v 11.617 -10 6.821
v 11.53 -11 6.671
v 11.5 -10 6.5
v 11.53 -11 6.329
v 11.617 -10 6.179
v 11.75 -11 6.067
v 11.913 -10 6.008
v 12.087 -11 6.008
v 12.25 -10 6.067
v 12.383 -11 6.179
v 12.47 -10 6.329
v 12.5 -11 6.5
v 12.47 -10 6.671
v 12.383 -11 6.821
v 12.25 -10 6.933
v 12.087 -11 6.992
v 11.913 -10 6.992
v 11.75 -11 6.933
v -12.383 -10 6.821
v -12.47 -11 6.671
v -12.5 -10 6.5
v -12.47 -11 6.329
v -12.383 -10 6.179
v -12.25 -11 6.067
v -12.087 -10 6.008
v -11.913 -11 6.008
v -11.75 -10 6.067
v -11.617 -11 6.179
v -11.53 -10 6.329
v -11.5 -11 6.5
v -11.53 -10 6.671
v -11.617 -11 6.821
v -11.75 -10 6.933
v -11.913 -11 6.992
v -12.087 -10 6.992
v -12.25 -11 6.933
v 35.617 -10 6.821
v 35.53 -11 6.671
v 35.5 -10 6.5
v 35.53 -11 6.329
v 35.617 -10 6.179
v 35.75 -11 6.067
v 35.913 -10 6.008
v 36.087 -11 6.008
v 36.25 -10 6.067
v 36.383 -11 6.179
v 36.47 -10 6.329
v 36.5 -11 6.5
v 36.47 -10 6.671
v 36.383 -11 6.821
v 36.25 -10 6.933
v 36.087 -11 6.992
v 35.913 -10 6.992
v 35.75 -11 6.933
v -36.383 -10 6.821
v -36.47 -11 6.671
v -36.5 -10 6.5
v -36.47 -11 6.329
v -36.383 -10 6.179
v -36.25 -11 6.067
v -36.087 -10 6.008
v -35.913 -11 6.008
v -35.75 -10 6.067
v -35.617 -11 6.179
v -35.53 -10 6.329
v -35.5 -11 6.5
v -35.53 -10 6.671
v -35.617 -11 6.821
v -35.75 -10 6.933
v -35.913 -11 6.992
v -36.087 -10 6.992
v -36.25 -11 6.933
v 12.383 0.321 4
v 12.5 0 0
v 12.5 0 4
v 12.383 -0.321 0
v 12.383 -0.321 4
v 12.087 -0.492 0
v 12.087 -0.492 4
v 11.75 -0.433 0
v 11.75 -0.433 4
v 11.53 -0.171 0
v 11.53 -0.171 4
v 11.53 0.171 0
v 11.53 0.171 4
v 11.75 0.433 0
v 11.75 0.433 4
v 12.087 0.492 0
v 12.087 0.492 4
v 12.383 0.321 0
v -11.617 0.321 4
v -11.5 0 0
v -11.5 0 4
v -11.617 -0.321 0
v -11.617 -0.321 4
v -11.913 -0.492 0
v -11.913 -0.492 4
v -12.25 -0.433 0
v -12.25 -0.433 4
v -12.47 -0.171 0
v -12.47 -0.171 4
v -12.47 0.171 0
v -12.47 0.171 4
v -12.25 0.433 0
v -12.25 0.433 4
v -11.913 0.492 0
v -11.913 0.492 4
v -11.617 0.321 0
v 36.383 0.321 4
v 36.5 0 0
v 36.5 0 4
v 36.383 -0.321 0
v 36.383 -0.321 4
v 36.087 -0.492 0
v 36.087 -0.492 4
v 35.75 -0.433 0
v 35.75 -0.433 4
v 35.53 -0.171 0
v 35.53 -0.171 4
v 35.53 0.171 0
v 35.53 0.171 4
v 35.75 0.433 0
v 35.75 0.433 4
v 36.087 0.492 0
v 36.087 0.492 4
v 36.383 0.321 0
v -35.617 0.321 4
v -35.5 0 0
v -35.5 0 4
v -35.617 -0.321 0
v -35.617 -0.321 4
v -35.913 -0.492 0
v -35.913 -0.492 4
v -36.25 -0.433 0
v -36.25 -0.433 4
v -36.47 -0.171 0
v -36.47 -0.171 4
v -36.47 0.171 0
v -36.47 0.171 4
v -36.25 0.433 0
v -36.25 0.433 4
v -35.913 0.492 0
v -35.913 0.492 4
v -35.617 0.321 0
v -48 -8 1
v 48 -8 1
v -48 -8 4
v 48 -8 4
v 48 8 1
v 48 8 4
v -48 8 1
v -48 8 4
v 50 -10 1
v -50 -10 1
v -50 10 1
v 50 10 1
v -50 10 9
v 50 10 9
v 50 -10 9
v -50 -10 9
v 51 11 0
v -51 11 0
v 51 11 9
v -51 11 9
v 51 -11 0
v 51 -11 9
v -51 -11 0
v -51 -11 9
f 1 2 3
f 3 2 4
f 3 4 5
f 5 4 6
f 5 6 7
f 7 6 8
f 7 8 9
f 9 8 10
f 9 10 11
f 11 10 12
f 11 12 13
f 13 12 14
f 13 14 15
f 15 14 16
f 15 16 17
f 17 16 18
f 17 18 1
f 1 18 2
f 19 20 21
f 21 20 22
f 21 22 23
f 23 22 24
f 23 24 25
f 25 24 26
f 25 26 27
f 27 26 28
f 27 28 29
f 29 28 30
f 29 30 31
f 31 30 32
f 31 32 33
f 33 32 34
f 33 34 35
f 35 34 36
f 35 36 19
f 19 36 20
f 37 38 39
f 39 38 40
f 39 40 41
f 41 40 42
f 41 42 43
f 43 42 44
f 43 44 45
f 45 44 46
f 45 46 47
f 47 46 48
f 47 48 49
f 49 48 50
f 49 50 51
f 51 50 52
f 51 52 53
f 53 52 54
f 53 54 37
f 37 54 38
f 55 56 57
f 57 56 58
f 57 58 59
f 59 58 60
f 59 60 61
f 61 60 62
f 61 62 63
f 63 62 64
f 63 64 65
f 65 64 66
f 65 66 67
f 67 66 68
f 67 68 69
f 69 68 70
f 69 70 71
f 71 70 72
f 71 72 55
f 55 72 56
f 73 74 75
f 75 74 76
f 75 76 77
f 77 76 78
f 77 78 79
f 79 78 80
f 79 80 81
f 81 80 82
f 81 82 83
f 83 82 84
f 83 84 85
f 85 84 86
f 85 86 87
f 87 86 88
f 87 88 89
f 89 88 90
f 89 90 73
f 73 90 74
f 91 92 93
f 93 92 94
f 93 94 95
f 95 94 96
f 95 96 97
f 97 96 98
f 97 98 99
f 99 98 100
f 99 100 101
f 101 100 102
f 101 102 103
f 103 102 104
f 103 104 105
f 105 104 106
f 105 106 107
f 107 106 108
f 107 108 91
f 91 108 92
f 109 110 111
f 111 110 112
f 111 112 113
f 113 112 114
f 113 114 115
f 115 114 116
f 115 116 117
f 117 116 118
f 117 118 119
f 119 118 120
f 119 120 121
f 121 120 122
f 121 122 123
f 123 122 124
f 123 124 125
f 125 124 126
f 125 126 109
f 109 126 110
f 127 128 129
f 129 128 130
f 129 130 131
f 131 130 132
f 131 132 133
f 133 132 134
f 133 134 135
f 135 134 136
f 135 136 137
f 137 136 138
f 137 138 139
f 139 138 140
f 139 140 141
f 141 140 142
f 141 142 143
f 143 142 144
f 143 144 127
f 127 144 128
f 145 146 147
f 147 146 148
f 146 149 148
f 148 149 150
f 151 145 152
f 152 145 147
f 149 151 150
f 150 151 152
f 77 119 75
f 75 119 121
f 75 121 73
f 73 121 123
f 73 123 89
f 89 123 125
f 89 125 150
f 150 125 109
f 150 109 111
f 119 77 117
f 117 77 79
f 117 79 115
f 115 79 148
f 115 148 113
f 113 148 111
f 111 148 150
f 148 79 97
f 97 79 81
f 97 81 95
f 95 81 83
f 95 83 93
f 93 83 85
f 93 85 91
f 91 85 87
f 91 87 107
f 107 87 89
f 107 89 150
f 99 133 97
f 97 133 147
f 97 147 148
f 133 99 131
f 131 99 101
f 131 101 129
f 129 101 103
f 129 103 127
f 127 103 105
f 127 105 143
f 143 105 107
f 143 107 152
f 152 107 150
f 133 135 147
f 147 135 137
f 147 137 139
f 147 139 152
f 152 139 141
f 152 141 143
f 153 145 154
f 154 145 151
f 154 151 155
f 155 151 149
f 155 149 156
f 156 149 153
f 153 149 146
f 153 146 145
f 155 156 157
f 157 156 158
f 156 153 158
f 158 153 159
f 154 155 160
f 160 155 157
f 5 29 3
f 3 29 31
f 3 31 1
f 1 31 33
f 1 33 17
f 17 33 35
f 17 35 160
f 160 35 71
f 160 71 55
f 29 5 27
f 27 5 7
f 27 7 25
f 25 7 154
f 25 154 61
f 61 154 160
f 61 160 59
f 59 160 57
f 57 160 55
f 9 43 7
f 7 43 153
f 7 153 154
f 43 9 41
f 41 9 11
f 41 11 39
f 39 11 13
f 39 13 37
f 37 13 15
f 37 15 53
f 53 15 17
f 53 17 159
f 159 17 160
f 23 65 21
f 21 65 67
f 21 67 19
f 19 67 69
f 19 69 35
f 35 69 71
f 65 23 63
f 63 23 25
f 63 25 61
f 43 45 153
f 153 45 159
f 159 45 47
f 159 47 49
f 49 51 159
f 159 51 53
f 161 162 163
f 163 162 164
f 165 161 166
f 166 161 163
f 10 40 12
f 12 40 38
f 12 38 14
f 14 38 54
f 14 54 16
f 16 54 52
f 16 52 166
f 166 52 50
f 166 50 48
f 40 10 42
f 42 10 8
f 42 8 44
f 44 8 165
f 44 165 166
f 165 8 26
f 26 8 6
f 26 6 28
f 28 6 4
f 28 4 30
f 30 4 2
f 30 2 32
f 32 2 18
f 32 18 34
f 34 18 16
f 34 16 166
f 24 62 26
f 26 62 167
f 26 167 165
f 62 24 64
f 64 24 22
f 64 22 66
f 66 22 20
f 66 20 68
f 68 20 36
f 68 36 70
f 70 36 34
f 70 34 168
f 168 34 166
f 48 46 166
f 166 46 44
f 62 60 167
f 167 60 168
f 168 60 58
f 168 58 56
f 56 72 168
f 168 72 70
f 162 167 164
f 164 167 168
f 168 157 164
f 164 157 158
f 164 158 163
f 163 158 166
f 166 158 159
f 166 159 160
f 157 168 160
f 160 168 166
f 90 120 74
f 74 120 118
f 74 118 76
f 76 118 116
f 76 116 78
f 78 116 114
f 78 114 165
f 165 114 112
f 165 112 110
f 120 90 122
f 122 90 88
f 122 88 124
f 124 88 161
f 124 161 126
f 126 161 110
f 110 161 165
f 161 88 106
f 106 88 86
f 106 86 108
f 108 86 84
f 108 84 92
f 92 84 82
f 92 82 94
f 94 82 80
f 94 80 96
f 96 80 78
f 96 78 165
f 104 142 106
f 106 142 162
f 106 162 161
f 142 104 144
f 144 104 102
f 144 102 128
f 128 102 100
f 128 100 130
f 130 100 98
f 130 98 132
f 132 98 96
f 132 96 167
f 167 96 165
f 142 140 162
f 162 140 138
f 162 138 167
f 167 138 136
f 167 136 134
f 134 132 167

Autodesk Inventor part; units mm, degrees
ref_plane "YZ Plane" through (0, 0, 0) normal (1, 0, 0) x (0, 1, 0)
ref_plane "XZ Plane" through (0, 0, 0) normal (0, 1, 0) x (-1, 0, 0)
ref_plane "XY Plane" through (0, 0, 0) normal (0, 0, 1) x (1, 0, 0)
sketch "Sketch1" plane through (0, 0, 0) normal (0, 0, 1) x (1, 0, 0)
  line L0 (-50, 10) -> (50, 10)
  line L1 (50, 10) -> (50, -10)
  line L2 (50, -10) -> (-50, -10)
  line L3 (-50, -10) -> (-50, 10)
  line L4 (-50, 10) -> (50, -10) construction
  line L5 (50, 10) -> (-50, -10) construction
  line L6 (51, 11) -> (-51, 11)
  line L7 (-51, 11) -> (-51, -11)
  line L8 (-51, -11) -> (51, -11)
  line L9 (51, -11) -> (51, 11)
  line L10 (-48, -8) -> (48, -8)
  line L11 (48, -8) -> (48, 8)
  line L12 (48, 8) -> (-48, 8)
  line L13 (-48, 8) -> (-48, -8)
  line L14 (-48, -8) -> (48, 8) construction
  line L15 (48, -8) -> (-48, 8) construction
  line L16 (-48, 0) -> (48, 0) construction
  circle A0 centre (-36, 0) radius 0.5
  circle A1 centre (-12, 0) radius 0.5
  circle A2 centre (12, 0) radius 0.5
  circle A3 centre (36, 0) radius 0.5
  point P0 (0, 0)
  dimension "d0" = 100
  dimension "d1" = 20
  dimension "d2" = 1
  dimension "d7" = 96
  dimension "d8" = 16
  dimension "d9" = 2
  dimension "d10" = 1
  dimension "d11" = 12
  dimension "d12" = 1
  dimension "d13" = 24
  dimension "d14" = 1
  dimension "d15" = 24
  dimension "d16" = 1
  dimension "d17" = 24
extrude "Extrusion3" add sketch "Sketch1" along normal blind 9 contours L9 L8 L7 L6
extrude "Extrusion4" add sketch "Sketch1" along normal blind 1 contours L0 L1 L2 L3
extrude "Extrusion5" add sketch "Sketch1" along normal blind 4 contours L13 L12 L11 L10 | A0 | A1 | A2 | A3
extrude "Extrusion6" cut sketch "Sketch1" along normal blind 4 contours A0 | A1 | A2 | A3
sketch "Sketch2" plane through (-51, -11, 0) normal (0, -1, 0) x (1, 0, 0)
  line L0 (0, 0) -> (0, 9) construction
  line L1 (0, 6.5) -> (102, 6.5) construction
  line L2 (102, 0) -> (102, 9) construction
  line L3 (0, 0) -> (102, 0) construction
  circle A0 centre (15, 6.5) radius 0.5
  circle A1 centre (39, 6.5) radius 0.5
  circle A2 centre (63, 6.5) radius 0.5
  circle A3 centre (87, 6.5) radius 0.5
  point P0 (51, 0)
  dimension "d26" = 6.5
  dimension "d27" = 1
  dimension "d28" = 15
  dimension "d29" = 1
  dimension "d30" = 24
  dimension "d31" = 1
  dimension "d32" = 24
  dimension "d33" = 1
  dimension "d34" = 24
extrude "Extrusion7" cut sketch "Sketch2" against normal blind 2
sketch "Sketch3" plane through (-36, -11, 0) normal (-1, 0, 0) x (0, 0, 1)
  line L0 (11.6401, 26.0282) -> (-2.7437, 26.0282)
  line L1 (-2.7437, 26.0282) -> (-2.7437, -4.1114)
  line L2 (-2.7437, -4.1114) -> (11.6401, -4.1114)
  line L3 (11.6401, -4.1114) -> (11.6401, 26.0282)
  point P0 (0, 11)
properties part number "eit_chamber_electrode_side"
